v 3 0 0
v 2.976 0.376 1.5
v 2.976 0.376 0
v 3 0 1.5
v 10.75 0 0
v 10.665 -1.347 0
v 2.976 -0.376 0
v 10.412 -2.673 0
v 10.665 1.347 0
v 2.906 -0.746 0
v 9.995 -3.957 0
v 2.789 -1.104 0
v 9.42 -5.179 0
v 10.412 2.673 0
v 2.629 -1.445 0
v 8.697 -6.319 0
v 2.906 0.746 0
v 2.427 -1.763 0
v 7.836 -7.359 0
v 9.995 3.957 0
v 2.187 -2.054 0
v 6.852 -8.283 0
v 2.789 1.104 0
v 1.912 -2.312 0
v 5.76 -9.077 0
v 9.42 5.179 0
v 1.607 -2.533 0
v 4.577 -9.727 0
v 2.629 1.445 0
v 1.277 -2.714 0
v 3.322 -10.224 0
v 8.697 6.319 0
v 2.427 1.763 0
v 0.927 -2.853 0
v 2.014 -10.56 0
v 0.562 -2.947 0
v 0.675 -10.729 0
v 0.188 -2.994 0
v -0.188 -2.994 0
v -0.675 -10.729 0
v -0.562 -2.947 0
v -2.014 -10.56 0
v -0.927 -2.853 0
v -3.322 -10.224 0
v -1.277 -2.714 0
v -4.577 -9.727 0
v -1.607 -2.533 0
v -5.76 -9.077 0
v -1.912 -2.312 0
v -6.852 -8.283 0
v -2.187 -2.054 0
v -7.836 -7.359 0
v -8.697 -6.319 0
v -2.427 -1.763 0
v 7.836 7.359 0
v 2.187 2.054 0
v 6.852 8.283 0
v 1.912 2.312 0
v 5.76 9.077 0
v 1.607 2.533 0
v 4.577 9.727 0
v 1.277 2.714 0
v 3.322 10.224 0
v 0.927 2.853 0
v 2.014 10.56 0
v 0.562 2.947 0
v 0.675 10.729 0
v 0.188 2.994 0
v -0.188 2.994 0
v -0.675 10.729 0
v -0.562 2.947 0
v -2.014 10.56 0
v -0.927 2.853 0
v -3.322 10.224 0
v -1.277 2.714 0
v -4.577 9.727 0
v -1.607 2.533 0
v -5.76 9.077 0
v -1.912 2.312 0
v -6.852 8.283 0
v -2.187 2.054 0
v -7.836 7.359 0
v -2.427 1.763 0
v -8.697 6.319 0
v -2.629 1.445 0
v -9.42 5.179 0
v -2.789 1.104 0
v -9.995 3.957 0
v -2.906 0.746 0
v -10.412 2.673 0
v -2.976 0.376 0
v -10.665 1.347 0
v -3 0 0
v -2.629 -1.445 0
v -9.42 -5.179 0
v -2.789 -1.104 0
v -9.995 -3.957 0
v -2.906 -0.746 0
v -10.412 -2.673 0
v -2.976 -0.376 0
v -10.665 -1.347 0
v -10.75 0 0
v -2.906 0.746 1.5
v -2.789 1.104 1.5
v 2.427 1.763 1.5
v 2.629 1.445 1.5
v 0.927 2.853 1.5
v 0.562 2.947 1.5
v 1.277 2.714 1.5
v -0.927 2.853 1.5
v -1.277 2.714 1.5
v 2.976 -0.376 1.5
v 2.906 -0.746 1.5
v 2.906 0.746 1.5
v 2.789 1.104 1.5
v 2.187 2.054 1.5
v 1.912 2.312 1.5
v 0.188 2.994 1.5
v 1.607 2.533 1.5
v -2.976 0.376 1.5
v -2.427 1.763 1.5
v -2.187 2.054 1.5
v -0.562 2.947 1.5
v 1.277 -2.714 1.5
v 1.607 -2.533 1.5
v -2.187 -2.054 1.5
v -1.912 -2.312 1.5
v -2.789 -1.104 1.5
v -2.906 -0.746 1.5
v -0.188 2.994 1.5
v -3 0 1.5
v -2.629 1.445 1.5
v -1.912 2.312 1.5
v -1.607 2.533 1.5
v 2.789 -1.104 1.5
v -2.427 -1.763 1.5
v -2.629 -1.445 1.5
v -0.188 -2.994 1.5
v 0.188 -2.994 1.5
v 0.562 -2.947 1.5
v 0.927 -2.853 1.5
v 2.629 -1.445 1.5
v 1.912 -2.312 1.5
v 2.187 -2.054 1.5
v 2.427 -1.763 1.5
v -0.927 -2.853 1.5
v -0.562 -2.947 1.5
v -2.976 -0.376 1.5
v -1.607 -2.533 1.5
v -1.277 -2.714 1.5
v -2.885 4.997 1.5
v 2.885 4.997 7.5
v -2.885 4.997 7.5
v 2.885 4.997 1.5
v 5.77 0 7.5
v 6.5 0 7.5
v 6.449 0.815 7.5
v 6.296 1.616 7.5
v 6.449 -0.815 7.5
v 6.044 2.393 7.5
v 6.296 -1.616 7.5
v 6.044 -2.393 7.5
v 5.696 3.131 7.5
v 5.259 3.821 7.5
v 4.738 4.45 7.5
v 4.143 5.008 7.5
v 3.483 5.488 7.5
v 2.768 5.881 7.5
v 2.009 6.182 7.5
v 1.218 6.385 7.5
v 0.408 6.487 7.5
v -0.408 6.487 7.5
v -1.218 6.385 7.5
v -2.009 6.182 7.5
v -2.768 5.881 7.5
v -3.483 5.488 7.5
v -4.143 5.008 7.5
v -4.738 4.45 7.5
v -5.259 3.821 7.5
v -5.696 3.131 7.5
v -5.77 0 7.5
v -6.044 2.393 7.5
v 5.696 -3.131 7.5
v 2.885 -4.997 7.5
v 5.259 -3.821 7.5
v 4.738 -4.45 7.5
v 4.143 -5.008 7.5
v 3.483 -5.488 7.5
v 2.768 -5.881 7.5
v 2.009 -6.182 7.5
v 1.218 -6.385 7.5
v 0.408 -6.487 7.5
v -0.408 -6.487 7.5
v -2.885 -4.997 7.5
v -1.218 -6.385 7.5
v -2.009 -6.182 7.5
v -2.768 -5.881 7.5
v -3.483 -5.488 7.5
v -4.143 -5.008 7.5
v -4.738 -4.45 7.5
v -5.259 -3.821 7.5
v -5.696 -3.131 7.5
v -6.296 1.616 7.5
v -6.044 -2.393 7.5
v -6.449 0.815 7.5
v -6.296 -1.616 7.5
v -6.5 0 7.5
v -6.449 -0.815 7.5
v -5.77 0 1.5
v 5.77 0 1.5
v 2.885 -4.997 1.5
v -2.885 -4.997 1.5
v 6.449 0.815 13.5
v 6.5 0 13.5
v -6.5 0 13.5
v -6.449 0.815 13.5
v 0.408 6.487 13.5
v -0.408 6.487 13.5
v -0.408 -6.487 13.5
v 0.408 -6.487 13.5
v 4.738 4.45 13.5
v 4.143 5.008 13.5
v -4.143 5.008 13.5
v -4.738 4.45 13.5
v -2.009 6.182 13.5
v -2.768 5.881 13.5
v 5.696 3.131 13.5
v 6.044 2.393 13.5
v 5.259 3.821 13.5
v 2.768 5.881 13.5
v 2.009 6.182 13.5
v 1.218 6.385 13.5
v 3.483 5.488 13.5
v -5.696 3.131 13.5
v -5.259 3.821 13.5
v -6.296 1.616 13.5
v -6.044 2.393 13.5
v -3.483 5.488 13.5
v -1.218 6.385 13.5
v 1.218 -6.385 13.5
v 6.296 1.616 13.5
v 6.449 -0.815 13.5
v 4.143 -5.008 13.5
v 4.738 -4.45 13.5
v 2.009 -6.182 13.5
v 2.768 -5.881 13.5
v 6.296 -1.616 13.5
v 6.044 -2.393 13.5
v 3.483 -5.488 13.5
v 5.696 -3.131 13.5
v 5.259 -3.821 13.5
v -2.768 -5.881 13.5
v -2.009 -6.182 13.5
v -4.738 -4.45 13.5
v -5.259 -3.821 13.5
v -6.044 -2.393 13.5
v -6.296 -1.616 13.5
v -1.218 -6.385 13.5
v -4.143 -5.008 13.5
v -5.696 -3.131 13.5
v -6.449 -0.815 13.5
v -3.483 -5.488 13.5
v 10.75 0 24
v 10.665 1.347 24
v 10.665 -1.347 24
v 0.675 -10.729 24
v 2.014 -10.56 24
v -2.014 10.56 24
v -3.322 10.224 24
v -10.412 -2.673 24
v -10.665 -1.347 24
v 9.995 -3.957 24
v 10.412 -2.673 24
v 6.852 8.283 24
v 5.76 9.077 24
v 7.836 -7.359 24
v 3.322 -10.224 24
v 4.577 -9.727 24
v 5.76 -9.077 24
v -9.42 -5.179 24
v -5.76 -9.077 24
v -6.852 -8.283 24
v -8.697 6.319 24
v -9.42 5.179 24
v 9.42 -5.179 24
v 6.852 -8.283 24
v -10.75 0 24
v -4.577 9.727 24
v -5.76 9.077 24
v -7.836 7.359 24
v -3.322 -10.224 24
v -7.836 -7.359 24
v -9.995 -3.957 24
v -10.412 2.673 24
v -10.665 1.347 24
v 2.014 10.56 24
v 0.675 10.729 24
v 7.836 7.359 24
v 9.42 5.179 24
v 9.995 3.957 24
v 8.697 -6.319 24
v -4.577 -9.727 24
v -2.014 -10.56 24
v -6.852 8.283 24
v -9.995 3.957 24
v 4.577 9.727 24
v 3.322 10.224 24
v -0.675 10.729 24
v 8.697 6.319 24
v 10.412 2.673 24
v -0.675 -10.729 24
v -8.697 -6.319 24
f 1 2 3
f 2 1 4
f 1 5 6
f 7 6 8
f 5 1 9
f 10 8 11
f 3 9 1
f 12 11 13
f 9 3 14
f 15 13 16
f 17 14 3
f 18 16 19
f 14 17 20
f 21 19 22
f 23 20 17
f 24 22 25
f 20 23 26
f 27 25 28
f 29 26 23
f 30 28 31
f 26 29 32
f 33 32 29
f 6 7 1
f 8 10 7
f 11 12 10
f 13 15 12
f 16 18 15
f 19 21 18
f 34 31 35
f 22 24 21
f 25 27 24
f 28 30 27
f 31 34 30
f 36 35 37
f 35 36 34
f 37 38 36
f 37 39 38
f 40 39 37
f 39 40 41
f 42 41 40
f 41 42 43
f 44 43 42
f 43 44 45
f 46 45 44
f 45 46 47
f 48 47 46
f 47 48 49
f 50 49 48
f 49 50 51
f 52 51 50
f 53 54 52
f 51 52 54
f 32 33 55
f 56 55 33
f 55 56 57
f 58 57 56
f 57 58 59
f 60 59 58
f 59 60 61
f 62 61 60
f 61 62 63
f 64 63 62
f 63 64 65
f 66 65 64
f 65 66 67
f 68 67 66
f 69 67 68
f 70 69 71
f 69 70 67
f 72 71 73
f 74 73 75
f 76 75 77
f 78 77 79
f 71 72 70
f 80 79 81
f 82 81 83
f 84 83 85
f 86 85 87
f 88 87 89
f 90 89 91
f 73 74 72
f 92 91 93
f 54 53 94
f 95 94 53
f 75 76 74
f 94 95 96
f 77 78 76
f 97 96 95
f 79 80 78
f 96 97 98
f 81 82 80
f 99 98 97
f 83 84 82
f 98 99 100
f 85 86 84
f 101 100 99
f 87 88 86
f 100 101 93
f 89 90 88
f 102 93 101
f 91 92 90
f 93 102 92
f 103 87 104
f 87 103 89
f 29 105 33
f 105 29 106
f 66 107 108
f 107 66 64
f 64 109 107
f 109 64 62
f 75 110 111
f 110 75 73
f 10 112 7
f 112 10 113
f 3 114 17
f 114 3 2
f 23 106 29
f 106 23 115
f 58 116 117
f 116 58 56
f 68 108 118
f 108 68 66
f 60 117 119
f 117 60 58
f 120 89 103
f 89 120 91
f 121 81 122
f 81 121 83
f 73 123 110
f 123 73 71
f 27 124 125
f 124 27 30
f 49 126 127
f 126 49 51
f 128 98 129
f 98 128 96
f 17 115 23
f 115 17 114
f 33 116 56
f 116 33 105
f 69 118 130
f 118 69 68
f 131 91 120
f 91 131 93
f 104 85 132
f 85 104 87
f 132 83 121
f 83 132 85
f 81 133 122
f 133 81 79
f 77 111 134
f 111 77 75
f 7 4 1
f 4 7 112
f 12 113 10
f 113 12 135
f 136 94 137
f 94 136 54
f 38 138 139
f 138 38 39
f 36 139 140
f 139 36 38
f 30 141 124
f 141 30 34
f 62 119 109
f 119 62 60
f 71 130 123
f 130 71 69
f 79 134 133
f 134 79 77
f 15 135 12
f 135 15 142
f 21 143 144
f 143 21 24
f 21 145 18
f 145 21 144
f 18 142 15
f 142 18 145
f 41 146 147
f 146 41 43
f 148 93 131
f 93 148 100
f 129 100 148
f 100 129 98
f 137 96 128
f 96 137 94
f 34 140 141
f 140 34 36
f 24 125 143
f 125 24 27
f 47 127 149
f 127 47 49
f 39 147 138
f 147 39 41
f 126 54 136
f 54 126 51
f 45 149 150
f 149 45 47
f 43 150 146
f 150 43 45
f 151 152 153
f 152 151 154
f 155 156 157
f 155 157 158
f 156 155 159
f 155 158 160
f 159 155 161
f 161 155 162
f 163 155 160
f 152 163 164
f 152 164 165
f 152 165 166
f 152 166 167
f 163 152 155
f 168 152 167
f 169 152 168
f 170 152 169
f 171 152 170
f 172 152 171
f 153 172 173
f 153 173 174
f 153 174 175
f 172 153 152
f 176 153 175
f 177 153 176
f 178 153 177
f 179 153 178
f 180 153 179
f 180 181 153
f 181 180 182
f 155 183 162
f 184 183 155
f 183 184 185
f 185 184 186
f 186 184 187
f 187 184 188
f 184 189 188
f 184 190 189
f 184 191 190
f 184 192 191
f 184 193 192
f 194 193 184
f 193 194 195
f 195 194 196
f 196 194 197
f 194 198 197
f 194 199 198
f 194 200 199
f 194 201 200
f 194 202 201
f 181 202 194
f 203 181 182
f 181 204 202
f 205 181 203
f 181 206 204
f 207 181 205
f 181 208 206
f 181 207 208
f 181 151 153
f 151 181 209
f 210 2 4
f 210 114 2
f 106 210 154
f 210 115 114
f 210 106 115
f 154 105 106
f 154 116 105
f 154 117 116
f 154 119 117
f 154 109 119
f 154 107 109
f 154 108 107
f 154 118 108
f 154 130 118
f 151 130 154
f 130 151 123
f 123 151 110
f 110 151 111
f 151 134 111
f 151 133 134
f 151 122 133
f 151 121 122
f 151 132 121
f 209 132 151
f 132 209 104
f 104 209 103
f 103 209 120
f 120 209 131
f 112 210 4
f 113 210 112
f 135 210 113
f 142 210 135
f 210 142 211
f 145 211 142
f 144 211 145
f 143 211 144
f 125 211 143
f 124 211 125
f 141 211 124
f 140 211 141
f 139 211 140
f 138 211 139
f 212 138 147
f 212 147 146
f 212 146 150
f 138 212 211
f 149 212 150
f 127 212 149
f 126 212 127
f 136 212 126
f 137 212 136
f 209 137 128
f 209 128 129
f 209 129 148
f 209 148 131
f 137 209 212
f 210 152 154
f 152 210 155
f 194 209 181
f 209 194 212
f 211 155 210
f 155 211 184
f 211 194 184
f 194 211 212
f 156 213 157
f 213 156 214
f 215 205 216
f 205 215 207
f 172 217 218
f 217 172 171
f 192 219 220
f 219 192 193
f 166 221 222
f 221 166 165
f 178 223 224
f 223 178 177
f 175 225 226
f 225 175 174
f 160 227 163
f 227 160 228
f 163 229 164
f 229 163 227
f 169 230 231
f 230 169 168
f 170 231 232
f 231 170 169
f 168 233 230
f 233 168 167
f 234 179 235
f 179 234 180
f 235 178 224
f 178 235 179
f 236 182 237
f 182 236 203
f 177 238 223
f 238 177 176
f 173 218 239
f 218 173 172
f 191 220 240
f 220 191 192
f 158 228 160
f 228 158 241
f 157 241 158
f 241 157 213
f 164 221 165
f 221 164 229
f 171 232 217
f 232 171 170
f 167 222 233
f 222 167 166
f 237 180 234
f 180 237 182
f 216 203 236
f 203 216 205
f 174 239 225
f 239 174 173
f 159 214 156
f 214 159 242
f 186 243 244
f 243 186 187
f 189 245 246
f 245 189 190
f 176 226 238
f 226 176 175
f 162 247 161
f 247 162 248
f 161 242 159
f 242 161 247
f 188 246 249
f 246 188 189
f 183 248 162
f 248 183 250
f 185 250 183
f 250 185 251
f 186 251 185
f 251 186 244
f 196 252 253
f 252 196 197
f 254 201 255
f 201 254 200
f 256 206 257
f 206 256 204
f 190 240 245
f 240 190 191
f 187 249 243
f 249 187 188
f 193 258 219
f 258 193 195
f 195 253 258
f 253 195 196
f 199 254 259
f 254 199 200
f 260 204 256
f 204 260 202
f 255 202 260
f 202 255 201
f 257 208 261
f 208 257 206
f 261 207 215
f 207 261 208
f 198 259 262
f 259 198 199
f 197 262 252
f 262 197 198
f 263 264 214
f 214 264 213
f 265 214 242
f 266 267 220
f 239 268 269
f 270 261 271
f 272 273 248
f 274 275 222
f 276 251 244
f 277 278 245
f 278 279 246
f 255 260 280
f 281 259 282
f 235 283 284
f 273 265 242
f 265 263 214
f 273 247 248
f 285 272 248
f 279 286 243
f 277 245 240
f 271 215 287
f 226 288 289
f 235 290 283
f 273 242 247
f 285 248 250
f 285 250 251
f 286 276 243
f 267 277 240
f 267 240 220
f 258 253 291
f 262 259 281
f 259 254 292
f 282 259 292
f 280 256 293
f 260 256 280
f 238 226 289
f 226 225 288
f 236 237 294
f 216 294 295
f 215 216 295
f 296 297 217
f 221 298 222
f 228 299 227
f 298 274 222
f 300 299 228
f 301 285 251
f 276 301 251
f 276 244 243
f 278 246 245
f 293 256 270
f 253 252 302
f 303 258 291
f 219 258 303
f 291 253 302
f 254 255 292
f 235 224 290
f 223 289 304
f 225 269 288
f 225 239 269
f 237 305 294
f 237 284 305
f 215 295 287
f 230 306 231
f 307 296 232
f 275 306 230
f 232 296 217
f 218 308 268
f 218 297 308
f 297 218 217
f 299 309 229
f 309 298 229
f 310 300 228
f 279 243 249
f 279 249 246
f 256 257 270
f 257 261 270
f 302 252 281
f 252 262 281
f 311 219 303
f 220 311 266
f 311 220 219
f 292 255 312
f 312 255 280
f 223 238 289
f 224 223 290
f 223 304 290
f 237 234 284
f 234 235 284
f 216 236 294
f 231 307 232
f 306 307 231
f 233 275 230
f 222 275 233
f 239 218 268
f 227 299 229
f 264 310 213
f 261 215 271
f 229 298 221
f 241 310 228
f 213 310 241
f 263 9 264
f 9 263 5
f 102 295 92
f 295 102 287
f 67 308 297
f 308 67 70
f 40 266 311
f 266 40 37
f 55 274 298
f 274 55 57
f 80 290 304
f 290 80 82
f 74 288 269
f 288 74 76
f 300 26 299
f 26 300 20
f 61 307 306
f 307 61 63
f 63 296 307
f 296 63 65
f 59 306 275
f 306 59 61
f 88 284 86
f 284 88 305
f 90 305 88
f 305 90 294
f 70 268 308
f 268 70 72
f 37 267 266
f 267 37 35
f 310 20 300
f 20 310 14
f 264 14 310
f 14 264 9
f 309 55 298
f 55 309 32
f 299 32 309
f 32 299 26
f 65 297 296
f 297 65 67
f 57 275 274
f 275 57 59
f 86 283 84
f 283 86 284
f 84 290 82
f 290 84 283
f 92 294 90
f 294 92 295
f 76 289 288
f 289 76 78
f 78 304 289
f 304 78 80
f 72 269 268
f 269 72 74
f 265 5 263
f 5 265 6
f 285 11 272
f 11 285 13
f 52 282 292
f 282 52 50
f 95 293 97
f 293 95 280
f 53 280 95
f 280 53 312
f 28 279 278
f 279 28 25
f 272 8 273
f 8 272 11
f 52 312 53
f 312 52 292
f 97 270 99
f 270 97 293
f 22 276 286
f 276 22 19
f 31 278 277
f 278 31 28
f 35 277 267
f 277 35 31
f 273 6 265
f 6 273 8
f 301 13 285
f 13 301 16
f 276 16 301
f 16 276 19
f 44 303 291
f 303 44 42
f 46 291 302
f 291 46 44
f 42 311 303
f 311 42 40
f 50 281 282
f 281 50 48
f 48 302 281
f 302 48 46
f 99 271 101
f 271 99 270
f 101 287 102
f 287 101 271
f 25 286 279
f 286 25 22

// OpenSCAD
$fn = 50;


difference() {
	union() {
		cylinder(h = 24, r = 10.7500000000);
	}
	union() {
		translate(v = [0, 0, 0]) {
			rotate(a = [0, 0, 0]) {
				difference() {
					union() {
						cylinder(h = 100, r = 3.0000000000);
					}
					union();
				}
			}
		}
		translate(v = [0, 0, 1.5000000000]) {
			rotate(a = [0, 0, 0]) {
				difference() {
					union() {
						linear_extrude(height = 6) {
							polygon(points = [[5.7700000000, 0.0000000000], [2.8850000000, 4.9969665798], [-2.8850000000, 4.9969665798], [-5.7700000000, 0.0000000000], [-2.8850000000, -4.9969665798], [2.8850000000, -4.9969665798]]);
						}
					}
					union();
				}
			}
		}
		translate(v = [0, 0, 7.5000000000]) {
			cylinder(h = 6, r = 6.5000000000);
		}
		translate(v = [0, 0, 13.5000000000]) {
			cylinder(h = 10.5000000000, r1 = 6.5000000000, r2 = 10.7500000000);
		}
	}
}
